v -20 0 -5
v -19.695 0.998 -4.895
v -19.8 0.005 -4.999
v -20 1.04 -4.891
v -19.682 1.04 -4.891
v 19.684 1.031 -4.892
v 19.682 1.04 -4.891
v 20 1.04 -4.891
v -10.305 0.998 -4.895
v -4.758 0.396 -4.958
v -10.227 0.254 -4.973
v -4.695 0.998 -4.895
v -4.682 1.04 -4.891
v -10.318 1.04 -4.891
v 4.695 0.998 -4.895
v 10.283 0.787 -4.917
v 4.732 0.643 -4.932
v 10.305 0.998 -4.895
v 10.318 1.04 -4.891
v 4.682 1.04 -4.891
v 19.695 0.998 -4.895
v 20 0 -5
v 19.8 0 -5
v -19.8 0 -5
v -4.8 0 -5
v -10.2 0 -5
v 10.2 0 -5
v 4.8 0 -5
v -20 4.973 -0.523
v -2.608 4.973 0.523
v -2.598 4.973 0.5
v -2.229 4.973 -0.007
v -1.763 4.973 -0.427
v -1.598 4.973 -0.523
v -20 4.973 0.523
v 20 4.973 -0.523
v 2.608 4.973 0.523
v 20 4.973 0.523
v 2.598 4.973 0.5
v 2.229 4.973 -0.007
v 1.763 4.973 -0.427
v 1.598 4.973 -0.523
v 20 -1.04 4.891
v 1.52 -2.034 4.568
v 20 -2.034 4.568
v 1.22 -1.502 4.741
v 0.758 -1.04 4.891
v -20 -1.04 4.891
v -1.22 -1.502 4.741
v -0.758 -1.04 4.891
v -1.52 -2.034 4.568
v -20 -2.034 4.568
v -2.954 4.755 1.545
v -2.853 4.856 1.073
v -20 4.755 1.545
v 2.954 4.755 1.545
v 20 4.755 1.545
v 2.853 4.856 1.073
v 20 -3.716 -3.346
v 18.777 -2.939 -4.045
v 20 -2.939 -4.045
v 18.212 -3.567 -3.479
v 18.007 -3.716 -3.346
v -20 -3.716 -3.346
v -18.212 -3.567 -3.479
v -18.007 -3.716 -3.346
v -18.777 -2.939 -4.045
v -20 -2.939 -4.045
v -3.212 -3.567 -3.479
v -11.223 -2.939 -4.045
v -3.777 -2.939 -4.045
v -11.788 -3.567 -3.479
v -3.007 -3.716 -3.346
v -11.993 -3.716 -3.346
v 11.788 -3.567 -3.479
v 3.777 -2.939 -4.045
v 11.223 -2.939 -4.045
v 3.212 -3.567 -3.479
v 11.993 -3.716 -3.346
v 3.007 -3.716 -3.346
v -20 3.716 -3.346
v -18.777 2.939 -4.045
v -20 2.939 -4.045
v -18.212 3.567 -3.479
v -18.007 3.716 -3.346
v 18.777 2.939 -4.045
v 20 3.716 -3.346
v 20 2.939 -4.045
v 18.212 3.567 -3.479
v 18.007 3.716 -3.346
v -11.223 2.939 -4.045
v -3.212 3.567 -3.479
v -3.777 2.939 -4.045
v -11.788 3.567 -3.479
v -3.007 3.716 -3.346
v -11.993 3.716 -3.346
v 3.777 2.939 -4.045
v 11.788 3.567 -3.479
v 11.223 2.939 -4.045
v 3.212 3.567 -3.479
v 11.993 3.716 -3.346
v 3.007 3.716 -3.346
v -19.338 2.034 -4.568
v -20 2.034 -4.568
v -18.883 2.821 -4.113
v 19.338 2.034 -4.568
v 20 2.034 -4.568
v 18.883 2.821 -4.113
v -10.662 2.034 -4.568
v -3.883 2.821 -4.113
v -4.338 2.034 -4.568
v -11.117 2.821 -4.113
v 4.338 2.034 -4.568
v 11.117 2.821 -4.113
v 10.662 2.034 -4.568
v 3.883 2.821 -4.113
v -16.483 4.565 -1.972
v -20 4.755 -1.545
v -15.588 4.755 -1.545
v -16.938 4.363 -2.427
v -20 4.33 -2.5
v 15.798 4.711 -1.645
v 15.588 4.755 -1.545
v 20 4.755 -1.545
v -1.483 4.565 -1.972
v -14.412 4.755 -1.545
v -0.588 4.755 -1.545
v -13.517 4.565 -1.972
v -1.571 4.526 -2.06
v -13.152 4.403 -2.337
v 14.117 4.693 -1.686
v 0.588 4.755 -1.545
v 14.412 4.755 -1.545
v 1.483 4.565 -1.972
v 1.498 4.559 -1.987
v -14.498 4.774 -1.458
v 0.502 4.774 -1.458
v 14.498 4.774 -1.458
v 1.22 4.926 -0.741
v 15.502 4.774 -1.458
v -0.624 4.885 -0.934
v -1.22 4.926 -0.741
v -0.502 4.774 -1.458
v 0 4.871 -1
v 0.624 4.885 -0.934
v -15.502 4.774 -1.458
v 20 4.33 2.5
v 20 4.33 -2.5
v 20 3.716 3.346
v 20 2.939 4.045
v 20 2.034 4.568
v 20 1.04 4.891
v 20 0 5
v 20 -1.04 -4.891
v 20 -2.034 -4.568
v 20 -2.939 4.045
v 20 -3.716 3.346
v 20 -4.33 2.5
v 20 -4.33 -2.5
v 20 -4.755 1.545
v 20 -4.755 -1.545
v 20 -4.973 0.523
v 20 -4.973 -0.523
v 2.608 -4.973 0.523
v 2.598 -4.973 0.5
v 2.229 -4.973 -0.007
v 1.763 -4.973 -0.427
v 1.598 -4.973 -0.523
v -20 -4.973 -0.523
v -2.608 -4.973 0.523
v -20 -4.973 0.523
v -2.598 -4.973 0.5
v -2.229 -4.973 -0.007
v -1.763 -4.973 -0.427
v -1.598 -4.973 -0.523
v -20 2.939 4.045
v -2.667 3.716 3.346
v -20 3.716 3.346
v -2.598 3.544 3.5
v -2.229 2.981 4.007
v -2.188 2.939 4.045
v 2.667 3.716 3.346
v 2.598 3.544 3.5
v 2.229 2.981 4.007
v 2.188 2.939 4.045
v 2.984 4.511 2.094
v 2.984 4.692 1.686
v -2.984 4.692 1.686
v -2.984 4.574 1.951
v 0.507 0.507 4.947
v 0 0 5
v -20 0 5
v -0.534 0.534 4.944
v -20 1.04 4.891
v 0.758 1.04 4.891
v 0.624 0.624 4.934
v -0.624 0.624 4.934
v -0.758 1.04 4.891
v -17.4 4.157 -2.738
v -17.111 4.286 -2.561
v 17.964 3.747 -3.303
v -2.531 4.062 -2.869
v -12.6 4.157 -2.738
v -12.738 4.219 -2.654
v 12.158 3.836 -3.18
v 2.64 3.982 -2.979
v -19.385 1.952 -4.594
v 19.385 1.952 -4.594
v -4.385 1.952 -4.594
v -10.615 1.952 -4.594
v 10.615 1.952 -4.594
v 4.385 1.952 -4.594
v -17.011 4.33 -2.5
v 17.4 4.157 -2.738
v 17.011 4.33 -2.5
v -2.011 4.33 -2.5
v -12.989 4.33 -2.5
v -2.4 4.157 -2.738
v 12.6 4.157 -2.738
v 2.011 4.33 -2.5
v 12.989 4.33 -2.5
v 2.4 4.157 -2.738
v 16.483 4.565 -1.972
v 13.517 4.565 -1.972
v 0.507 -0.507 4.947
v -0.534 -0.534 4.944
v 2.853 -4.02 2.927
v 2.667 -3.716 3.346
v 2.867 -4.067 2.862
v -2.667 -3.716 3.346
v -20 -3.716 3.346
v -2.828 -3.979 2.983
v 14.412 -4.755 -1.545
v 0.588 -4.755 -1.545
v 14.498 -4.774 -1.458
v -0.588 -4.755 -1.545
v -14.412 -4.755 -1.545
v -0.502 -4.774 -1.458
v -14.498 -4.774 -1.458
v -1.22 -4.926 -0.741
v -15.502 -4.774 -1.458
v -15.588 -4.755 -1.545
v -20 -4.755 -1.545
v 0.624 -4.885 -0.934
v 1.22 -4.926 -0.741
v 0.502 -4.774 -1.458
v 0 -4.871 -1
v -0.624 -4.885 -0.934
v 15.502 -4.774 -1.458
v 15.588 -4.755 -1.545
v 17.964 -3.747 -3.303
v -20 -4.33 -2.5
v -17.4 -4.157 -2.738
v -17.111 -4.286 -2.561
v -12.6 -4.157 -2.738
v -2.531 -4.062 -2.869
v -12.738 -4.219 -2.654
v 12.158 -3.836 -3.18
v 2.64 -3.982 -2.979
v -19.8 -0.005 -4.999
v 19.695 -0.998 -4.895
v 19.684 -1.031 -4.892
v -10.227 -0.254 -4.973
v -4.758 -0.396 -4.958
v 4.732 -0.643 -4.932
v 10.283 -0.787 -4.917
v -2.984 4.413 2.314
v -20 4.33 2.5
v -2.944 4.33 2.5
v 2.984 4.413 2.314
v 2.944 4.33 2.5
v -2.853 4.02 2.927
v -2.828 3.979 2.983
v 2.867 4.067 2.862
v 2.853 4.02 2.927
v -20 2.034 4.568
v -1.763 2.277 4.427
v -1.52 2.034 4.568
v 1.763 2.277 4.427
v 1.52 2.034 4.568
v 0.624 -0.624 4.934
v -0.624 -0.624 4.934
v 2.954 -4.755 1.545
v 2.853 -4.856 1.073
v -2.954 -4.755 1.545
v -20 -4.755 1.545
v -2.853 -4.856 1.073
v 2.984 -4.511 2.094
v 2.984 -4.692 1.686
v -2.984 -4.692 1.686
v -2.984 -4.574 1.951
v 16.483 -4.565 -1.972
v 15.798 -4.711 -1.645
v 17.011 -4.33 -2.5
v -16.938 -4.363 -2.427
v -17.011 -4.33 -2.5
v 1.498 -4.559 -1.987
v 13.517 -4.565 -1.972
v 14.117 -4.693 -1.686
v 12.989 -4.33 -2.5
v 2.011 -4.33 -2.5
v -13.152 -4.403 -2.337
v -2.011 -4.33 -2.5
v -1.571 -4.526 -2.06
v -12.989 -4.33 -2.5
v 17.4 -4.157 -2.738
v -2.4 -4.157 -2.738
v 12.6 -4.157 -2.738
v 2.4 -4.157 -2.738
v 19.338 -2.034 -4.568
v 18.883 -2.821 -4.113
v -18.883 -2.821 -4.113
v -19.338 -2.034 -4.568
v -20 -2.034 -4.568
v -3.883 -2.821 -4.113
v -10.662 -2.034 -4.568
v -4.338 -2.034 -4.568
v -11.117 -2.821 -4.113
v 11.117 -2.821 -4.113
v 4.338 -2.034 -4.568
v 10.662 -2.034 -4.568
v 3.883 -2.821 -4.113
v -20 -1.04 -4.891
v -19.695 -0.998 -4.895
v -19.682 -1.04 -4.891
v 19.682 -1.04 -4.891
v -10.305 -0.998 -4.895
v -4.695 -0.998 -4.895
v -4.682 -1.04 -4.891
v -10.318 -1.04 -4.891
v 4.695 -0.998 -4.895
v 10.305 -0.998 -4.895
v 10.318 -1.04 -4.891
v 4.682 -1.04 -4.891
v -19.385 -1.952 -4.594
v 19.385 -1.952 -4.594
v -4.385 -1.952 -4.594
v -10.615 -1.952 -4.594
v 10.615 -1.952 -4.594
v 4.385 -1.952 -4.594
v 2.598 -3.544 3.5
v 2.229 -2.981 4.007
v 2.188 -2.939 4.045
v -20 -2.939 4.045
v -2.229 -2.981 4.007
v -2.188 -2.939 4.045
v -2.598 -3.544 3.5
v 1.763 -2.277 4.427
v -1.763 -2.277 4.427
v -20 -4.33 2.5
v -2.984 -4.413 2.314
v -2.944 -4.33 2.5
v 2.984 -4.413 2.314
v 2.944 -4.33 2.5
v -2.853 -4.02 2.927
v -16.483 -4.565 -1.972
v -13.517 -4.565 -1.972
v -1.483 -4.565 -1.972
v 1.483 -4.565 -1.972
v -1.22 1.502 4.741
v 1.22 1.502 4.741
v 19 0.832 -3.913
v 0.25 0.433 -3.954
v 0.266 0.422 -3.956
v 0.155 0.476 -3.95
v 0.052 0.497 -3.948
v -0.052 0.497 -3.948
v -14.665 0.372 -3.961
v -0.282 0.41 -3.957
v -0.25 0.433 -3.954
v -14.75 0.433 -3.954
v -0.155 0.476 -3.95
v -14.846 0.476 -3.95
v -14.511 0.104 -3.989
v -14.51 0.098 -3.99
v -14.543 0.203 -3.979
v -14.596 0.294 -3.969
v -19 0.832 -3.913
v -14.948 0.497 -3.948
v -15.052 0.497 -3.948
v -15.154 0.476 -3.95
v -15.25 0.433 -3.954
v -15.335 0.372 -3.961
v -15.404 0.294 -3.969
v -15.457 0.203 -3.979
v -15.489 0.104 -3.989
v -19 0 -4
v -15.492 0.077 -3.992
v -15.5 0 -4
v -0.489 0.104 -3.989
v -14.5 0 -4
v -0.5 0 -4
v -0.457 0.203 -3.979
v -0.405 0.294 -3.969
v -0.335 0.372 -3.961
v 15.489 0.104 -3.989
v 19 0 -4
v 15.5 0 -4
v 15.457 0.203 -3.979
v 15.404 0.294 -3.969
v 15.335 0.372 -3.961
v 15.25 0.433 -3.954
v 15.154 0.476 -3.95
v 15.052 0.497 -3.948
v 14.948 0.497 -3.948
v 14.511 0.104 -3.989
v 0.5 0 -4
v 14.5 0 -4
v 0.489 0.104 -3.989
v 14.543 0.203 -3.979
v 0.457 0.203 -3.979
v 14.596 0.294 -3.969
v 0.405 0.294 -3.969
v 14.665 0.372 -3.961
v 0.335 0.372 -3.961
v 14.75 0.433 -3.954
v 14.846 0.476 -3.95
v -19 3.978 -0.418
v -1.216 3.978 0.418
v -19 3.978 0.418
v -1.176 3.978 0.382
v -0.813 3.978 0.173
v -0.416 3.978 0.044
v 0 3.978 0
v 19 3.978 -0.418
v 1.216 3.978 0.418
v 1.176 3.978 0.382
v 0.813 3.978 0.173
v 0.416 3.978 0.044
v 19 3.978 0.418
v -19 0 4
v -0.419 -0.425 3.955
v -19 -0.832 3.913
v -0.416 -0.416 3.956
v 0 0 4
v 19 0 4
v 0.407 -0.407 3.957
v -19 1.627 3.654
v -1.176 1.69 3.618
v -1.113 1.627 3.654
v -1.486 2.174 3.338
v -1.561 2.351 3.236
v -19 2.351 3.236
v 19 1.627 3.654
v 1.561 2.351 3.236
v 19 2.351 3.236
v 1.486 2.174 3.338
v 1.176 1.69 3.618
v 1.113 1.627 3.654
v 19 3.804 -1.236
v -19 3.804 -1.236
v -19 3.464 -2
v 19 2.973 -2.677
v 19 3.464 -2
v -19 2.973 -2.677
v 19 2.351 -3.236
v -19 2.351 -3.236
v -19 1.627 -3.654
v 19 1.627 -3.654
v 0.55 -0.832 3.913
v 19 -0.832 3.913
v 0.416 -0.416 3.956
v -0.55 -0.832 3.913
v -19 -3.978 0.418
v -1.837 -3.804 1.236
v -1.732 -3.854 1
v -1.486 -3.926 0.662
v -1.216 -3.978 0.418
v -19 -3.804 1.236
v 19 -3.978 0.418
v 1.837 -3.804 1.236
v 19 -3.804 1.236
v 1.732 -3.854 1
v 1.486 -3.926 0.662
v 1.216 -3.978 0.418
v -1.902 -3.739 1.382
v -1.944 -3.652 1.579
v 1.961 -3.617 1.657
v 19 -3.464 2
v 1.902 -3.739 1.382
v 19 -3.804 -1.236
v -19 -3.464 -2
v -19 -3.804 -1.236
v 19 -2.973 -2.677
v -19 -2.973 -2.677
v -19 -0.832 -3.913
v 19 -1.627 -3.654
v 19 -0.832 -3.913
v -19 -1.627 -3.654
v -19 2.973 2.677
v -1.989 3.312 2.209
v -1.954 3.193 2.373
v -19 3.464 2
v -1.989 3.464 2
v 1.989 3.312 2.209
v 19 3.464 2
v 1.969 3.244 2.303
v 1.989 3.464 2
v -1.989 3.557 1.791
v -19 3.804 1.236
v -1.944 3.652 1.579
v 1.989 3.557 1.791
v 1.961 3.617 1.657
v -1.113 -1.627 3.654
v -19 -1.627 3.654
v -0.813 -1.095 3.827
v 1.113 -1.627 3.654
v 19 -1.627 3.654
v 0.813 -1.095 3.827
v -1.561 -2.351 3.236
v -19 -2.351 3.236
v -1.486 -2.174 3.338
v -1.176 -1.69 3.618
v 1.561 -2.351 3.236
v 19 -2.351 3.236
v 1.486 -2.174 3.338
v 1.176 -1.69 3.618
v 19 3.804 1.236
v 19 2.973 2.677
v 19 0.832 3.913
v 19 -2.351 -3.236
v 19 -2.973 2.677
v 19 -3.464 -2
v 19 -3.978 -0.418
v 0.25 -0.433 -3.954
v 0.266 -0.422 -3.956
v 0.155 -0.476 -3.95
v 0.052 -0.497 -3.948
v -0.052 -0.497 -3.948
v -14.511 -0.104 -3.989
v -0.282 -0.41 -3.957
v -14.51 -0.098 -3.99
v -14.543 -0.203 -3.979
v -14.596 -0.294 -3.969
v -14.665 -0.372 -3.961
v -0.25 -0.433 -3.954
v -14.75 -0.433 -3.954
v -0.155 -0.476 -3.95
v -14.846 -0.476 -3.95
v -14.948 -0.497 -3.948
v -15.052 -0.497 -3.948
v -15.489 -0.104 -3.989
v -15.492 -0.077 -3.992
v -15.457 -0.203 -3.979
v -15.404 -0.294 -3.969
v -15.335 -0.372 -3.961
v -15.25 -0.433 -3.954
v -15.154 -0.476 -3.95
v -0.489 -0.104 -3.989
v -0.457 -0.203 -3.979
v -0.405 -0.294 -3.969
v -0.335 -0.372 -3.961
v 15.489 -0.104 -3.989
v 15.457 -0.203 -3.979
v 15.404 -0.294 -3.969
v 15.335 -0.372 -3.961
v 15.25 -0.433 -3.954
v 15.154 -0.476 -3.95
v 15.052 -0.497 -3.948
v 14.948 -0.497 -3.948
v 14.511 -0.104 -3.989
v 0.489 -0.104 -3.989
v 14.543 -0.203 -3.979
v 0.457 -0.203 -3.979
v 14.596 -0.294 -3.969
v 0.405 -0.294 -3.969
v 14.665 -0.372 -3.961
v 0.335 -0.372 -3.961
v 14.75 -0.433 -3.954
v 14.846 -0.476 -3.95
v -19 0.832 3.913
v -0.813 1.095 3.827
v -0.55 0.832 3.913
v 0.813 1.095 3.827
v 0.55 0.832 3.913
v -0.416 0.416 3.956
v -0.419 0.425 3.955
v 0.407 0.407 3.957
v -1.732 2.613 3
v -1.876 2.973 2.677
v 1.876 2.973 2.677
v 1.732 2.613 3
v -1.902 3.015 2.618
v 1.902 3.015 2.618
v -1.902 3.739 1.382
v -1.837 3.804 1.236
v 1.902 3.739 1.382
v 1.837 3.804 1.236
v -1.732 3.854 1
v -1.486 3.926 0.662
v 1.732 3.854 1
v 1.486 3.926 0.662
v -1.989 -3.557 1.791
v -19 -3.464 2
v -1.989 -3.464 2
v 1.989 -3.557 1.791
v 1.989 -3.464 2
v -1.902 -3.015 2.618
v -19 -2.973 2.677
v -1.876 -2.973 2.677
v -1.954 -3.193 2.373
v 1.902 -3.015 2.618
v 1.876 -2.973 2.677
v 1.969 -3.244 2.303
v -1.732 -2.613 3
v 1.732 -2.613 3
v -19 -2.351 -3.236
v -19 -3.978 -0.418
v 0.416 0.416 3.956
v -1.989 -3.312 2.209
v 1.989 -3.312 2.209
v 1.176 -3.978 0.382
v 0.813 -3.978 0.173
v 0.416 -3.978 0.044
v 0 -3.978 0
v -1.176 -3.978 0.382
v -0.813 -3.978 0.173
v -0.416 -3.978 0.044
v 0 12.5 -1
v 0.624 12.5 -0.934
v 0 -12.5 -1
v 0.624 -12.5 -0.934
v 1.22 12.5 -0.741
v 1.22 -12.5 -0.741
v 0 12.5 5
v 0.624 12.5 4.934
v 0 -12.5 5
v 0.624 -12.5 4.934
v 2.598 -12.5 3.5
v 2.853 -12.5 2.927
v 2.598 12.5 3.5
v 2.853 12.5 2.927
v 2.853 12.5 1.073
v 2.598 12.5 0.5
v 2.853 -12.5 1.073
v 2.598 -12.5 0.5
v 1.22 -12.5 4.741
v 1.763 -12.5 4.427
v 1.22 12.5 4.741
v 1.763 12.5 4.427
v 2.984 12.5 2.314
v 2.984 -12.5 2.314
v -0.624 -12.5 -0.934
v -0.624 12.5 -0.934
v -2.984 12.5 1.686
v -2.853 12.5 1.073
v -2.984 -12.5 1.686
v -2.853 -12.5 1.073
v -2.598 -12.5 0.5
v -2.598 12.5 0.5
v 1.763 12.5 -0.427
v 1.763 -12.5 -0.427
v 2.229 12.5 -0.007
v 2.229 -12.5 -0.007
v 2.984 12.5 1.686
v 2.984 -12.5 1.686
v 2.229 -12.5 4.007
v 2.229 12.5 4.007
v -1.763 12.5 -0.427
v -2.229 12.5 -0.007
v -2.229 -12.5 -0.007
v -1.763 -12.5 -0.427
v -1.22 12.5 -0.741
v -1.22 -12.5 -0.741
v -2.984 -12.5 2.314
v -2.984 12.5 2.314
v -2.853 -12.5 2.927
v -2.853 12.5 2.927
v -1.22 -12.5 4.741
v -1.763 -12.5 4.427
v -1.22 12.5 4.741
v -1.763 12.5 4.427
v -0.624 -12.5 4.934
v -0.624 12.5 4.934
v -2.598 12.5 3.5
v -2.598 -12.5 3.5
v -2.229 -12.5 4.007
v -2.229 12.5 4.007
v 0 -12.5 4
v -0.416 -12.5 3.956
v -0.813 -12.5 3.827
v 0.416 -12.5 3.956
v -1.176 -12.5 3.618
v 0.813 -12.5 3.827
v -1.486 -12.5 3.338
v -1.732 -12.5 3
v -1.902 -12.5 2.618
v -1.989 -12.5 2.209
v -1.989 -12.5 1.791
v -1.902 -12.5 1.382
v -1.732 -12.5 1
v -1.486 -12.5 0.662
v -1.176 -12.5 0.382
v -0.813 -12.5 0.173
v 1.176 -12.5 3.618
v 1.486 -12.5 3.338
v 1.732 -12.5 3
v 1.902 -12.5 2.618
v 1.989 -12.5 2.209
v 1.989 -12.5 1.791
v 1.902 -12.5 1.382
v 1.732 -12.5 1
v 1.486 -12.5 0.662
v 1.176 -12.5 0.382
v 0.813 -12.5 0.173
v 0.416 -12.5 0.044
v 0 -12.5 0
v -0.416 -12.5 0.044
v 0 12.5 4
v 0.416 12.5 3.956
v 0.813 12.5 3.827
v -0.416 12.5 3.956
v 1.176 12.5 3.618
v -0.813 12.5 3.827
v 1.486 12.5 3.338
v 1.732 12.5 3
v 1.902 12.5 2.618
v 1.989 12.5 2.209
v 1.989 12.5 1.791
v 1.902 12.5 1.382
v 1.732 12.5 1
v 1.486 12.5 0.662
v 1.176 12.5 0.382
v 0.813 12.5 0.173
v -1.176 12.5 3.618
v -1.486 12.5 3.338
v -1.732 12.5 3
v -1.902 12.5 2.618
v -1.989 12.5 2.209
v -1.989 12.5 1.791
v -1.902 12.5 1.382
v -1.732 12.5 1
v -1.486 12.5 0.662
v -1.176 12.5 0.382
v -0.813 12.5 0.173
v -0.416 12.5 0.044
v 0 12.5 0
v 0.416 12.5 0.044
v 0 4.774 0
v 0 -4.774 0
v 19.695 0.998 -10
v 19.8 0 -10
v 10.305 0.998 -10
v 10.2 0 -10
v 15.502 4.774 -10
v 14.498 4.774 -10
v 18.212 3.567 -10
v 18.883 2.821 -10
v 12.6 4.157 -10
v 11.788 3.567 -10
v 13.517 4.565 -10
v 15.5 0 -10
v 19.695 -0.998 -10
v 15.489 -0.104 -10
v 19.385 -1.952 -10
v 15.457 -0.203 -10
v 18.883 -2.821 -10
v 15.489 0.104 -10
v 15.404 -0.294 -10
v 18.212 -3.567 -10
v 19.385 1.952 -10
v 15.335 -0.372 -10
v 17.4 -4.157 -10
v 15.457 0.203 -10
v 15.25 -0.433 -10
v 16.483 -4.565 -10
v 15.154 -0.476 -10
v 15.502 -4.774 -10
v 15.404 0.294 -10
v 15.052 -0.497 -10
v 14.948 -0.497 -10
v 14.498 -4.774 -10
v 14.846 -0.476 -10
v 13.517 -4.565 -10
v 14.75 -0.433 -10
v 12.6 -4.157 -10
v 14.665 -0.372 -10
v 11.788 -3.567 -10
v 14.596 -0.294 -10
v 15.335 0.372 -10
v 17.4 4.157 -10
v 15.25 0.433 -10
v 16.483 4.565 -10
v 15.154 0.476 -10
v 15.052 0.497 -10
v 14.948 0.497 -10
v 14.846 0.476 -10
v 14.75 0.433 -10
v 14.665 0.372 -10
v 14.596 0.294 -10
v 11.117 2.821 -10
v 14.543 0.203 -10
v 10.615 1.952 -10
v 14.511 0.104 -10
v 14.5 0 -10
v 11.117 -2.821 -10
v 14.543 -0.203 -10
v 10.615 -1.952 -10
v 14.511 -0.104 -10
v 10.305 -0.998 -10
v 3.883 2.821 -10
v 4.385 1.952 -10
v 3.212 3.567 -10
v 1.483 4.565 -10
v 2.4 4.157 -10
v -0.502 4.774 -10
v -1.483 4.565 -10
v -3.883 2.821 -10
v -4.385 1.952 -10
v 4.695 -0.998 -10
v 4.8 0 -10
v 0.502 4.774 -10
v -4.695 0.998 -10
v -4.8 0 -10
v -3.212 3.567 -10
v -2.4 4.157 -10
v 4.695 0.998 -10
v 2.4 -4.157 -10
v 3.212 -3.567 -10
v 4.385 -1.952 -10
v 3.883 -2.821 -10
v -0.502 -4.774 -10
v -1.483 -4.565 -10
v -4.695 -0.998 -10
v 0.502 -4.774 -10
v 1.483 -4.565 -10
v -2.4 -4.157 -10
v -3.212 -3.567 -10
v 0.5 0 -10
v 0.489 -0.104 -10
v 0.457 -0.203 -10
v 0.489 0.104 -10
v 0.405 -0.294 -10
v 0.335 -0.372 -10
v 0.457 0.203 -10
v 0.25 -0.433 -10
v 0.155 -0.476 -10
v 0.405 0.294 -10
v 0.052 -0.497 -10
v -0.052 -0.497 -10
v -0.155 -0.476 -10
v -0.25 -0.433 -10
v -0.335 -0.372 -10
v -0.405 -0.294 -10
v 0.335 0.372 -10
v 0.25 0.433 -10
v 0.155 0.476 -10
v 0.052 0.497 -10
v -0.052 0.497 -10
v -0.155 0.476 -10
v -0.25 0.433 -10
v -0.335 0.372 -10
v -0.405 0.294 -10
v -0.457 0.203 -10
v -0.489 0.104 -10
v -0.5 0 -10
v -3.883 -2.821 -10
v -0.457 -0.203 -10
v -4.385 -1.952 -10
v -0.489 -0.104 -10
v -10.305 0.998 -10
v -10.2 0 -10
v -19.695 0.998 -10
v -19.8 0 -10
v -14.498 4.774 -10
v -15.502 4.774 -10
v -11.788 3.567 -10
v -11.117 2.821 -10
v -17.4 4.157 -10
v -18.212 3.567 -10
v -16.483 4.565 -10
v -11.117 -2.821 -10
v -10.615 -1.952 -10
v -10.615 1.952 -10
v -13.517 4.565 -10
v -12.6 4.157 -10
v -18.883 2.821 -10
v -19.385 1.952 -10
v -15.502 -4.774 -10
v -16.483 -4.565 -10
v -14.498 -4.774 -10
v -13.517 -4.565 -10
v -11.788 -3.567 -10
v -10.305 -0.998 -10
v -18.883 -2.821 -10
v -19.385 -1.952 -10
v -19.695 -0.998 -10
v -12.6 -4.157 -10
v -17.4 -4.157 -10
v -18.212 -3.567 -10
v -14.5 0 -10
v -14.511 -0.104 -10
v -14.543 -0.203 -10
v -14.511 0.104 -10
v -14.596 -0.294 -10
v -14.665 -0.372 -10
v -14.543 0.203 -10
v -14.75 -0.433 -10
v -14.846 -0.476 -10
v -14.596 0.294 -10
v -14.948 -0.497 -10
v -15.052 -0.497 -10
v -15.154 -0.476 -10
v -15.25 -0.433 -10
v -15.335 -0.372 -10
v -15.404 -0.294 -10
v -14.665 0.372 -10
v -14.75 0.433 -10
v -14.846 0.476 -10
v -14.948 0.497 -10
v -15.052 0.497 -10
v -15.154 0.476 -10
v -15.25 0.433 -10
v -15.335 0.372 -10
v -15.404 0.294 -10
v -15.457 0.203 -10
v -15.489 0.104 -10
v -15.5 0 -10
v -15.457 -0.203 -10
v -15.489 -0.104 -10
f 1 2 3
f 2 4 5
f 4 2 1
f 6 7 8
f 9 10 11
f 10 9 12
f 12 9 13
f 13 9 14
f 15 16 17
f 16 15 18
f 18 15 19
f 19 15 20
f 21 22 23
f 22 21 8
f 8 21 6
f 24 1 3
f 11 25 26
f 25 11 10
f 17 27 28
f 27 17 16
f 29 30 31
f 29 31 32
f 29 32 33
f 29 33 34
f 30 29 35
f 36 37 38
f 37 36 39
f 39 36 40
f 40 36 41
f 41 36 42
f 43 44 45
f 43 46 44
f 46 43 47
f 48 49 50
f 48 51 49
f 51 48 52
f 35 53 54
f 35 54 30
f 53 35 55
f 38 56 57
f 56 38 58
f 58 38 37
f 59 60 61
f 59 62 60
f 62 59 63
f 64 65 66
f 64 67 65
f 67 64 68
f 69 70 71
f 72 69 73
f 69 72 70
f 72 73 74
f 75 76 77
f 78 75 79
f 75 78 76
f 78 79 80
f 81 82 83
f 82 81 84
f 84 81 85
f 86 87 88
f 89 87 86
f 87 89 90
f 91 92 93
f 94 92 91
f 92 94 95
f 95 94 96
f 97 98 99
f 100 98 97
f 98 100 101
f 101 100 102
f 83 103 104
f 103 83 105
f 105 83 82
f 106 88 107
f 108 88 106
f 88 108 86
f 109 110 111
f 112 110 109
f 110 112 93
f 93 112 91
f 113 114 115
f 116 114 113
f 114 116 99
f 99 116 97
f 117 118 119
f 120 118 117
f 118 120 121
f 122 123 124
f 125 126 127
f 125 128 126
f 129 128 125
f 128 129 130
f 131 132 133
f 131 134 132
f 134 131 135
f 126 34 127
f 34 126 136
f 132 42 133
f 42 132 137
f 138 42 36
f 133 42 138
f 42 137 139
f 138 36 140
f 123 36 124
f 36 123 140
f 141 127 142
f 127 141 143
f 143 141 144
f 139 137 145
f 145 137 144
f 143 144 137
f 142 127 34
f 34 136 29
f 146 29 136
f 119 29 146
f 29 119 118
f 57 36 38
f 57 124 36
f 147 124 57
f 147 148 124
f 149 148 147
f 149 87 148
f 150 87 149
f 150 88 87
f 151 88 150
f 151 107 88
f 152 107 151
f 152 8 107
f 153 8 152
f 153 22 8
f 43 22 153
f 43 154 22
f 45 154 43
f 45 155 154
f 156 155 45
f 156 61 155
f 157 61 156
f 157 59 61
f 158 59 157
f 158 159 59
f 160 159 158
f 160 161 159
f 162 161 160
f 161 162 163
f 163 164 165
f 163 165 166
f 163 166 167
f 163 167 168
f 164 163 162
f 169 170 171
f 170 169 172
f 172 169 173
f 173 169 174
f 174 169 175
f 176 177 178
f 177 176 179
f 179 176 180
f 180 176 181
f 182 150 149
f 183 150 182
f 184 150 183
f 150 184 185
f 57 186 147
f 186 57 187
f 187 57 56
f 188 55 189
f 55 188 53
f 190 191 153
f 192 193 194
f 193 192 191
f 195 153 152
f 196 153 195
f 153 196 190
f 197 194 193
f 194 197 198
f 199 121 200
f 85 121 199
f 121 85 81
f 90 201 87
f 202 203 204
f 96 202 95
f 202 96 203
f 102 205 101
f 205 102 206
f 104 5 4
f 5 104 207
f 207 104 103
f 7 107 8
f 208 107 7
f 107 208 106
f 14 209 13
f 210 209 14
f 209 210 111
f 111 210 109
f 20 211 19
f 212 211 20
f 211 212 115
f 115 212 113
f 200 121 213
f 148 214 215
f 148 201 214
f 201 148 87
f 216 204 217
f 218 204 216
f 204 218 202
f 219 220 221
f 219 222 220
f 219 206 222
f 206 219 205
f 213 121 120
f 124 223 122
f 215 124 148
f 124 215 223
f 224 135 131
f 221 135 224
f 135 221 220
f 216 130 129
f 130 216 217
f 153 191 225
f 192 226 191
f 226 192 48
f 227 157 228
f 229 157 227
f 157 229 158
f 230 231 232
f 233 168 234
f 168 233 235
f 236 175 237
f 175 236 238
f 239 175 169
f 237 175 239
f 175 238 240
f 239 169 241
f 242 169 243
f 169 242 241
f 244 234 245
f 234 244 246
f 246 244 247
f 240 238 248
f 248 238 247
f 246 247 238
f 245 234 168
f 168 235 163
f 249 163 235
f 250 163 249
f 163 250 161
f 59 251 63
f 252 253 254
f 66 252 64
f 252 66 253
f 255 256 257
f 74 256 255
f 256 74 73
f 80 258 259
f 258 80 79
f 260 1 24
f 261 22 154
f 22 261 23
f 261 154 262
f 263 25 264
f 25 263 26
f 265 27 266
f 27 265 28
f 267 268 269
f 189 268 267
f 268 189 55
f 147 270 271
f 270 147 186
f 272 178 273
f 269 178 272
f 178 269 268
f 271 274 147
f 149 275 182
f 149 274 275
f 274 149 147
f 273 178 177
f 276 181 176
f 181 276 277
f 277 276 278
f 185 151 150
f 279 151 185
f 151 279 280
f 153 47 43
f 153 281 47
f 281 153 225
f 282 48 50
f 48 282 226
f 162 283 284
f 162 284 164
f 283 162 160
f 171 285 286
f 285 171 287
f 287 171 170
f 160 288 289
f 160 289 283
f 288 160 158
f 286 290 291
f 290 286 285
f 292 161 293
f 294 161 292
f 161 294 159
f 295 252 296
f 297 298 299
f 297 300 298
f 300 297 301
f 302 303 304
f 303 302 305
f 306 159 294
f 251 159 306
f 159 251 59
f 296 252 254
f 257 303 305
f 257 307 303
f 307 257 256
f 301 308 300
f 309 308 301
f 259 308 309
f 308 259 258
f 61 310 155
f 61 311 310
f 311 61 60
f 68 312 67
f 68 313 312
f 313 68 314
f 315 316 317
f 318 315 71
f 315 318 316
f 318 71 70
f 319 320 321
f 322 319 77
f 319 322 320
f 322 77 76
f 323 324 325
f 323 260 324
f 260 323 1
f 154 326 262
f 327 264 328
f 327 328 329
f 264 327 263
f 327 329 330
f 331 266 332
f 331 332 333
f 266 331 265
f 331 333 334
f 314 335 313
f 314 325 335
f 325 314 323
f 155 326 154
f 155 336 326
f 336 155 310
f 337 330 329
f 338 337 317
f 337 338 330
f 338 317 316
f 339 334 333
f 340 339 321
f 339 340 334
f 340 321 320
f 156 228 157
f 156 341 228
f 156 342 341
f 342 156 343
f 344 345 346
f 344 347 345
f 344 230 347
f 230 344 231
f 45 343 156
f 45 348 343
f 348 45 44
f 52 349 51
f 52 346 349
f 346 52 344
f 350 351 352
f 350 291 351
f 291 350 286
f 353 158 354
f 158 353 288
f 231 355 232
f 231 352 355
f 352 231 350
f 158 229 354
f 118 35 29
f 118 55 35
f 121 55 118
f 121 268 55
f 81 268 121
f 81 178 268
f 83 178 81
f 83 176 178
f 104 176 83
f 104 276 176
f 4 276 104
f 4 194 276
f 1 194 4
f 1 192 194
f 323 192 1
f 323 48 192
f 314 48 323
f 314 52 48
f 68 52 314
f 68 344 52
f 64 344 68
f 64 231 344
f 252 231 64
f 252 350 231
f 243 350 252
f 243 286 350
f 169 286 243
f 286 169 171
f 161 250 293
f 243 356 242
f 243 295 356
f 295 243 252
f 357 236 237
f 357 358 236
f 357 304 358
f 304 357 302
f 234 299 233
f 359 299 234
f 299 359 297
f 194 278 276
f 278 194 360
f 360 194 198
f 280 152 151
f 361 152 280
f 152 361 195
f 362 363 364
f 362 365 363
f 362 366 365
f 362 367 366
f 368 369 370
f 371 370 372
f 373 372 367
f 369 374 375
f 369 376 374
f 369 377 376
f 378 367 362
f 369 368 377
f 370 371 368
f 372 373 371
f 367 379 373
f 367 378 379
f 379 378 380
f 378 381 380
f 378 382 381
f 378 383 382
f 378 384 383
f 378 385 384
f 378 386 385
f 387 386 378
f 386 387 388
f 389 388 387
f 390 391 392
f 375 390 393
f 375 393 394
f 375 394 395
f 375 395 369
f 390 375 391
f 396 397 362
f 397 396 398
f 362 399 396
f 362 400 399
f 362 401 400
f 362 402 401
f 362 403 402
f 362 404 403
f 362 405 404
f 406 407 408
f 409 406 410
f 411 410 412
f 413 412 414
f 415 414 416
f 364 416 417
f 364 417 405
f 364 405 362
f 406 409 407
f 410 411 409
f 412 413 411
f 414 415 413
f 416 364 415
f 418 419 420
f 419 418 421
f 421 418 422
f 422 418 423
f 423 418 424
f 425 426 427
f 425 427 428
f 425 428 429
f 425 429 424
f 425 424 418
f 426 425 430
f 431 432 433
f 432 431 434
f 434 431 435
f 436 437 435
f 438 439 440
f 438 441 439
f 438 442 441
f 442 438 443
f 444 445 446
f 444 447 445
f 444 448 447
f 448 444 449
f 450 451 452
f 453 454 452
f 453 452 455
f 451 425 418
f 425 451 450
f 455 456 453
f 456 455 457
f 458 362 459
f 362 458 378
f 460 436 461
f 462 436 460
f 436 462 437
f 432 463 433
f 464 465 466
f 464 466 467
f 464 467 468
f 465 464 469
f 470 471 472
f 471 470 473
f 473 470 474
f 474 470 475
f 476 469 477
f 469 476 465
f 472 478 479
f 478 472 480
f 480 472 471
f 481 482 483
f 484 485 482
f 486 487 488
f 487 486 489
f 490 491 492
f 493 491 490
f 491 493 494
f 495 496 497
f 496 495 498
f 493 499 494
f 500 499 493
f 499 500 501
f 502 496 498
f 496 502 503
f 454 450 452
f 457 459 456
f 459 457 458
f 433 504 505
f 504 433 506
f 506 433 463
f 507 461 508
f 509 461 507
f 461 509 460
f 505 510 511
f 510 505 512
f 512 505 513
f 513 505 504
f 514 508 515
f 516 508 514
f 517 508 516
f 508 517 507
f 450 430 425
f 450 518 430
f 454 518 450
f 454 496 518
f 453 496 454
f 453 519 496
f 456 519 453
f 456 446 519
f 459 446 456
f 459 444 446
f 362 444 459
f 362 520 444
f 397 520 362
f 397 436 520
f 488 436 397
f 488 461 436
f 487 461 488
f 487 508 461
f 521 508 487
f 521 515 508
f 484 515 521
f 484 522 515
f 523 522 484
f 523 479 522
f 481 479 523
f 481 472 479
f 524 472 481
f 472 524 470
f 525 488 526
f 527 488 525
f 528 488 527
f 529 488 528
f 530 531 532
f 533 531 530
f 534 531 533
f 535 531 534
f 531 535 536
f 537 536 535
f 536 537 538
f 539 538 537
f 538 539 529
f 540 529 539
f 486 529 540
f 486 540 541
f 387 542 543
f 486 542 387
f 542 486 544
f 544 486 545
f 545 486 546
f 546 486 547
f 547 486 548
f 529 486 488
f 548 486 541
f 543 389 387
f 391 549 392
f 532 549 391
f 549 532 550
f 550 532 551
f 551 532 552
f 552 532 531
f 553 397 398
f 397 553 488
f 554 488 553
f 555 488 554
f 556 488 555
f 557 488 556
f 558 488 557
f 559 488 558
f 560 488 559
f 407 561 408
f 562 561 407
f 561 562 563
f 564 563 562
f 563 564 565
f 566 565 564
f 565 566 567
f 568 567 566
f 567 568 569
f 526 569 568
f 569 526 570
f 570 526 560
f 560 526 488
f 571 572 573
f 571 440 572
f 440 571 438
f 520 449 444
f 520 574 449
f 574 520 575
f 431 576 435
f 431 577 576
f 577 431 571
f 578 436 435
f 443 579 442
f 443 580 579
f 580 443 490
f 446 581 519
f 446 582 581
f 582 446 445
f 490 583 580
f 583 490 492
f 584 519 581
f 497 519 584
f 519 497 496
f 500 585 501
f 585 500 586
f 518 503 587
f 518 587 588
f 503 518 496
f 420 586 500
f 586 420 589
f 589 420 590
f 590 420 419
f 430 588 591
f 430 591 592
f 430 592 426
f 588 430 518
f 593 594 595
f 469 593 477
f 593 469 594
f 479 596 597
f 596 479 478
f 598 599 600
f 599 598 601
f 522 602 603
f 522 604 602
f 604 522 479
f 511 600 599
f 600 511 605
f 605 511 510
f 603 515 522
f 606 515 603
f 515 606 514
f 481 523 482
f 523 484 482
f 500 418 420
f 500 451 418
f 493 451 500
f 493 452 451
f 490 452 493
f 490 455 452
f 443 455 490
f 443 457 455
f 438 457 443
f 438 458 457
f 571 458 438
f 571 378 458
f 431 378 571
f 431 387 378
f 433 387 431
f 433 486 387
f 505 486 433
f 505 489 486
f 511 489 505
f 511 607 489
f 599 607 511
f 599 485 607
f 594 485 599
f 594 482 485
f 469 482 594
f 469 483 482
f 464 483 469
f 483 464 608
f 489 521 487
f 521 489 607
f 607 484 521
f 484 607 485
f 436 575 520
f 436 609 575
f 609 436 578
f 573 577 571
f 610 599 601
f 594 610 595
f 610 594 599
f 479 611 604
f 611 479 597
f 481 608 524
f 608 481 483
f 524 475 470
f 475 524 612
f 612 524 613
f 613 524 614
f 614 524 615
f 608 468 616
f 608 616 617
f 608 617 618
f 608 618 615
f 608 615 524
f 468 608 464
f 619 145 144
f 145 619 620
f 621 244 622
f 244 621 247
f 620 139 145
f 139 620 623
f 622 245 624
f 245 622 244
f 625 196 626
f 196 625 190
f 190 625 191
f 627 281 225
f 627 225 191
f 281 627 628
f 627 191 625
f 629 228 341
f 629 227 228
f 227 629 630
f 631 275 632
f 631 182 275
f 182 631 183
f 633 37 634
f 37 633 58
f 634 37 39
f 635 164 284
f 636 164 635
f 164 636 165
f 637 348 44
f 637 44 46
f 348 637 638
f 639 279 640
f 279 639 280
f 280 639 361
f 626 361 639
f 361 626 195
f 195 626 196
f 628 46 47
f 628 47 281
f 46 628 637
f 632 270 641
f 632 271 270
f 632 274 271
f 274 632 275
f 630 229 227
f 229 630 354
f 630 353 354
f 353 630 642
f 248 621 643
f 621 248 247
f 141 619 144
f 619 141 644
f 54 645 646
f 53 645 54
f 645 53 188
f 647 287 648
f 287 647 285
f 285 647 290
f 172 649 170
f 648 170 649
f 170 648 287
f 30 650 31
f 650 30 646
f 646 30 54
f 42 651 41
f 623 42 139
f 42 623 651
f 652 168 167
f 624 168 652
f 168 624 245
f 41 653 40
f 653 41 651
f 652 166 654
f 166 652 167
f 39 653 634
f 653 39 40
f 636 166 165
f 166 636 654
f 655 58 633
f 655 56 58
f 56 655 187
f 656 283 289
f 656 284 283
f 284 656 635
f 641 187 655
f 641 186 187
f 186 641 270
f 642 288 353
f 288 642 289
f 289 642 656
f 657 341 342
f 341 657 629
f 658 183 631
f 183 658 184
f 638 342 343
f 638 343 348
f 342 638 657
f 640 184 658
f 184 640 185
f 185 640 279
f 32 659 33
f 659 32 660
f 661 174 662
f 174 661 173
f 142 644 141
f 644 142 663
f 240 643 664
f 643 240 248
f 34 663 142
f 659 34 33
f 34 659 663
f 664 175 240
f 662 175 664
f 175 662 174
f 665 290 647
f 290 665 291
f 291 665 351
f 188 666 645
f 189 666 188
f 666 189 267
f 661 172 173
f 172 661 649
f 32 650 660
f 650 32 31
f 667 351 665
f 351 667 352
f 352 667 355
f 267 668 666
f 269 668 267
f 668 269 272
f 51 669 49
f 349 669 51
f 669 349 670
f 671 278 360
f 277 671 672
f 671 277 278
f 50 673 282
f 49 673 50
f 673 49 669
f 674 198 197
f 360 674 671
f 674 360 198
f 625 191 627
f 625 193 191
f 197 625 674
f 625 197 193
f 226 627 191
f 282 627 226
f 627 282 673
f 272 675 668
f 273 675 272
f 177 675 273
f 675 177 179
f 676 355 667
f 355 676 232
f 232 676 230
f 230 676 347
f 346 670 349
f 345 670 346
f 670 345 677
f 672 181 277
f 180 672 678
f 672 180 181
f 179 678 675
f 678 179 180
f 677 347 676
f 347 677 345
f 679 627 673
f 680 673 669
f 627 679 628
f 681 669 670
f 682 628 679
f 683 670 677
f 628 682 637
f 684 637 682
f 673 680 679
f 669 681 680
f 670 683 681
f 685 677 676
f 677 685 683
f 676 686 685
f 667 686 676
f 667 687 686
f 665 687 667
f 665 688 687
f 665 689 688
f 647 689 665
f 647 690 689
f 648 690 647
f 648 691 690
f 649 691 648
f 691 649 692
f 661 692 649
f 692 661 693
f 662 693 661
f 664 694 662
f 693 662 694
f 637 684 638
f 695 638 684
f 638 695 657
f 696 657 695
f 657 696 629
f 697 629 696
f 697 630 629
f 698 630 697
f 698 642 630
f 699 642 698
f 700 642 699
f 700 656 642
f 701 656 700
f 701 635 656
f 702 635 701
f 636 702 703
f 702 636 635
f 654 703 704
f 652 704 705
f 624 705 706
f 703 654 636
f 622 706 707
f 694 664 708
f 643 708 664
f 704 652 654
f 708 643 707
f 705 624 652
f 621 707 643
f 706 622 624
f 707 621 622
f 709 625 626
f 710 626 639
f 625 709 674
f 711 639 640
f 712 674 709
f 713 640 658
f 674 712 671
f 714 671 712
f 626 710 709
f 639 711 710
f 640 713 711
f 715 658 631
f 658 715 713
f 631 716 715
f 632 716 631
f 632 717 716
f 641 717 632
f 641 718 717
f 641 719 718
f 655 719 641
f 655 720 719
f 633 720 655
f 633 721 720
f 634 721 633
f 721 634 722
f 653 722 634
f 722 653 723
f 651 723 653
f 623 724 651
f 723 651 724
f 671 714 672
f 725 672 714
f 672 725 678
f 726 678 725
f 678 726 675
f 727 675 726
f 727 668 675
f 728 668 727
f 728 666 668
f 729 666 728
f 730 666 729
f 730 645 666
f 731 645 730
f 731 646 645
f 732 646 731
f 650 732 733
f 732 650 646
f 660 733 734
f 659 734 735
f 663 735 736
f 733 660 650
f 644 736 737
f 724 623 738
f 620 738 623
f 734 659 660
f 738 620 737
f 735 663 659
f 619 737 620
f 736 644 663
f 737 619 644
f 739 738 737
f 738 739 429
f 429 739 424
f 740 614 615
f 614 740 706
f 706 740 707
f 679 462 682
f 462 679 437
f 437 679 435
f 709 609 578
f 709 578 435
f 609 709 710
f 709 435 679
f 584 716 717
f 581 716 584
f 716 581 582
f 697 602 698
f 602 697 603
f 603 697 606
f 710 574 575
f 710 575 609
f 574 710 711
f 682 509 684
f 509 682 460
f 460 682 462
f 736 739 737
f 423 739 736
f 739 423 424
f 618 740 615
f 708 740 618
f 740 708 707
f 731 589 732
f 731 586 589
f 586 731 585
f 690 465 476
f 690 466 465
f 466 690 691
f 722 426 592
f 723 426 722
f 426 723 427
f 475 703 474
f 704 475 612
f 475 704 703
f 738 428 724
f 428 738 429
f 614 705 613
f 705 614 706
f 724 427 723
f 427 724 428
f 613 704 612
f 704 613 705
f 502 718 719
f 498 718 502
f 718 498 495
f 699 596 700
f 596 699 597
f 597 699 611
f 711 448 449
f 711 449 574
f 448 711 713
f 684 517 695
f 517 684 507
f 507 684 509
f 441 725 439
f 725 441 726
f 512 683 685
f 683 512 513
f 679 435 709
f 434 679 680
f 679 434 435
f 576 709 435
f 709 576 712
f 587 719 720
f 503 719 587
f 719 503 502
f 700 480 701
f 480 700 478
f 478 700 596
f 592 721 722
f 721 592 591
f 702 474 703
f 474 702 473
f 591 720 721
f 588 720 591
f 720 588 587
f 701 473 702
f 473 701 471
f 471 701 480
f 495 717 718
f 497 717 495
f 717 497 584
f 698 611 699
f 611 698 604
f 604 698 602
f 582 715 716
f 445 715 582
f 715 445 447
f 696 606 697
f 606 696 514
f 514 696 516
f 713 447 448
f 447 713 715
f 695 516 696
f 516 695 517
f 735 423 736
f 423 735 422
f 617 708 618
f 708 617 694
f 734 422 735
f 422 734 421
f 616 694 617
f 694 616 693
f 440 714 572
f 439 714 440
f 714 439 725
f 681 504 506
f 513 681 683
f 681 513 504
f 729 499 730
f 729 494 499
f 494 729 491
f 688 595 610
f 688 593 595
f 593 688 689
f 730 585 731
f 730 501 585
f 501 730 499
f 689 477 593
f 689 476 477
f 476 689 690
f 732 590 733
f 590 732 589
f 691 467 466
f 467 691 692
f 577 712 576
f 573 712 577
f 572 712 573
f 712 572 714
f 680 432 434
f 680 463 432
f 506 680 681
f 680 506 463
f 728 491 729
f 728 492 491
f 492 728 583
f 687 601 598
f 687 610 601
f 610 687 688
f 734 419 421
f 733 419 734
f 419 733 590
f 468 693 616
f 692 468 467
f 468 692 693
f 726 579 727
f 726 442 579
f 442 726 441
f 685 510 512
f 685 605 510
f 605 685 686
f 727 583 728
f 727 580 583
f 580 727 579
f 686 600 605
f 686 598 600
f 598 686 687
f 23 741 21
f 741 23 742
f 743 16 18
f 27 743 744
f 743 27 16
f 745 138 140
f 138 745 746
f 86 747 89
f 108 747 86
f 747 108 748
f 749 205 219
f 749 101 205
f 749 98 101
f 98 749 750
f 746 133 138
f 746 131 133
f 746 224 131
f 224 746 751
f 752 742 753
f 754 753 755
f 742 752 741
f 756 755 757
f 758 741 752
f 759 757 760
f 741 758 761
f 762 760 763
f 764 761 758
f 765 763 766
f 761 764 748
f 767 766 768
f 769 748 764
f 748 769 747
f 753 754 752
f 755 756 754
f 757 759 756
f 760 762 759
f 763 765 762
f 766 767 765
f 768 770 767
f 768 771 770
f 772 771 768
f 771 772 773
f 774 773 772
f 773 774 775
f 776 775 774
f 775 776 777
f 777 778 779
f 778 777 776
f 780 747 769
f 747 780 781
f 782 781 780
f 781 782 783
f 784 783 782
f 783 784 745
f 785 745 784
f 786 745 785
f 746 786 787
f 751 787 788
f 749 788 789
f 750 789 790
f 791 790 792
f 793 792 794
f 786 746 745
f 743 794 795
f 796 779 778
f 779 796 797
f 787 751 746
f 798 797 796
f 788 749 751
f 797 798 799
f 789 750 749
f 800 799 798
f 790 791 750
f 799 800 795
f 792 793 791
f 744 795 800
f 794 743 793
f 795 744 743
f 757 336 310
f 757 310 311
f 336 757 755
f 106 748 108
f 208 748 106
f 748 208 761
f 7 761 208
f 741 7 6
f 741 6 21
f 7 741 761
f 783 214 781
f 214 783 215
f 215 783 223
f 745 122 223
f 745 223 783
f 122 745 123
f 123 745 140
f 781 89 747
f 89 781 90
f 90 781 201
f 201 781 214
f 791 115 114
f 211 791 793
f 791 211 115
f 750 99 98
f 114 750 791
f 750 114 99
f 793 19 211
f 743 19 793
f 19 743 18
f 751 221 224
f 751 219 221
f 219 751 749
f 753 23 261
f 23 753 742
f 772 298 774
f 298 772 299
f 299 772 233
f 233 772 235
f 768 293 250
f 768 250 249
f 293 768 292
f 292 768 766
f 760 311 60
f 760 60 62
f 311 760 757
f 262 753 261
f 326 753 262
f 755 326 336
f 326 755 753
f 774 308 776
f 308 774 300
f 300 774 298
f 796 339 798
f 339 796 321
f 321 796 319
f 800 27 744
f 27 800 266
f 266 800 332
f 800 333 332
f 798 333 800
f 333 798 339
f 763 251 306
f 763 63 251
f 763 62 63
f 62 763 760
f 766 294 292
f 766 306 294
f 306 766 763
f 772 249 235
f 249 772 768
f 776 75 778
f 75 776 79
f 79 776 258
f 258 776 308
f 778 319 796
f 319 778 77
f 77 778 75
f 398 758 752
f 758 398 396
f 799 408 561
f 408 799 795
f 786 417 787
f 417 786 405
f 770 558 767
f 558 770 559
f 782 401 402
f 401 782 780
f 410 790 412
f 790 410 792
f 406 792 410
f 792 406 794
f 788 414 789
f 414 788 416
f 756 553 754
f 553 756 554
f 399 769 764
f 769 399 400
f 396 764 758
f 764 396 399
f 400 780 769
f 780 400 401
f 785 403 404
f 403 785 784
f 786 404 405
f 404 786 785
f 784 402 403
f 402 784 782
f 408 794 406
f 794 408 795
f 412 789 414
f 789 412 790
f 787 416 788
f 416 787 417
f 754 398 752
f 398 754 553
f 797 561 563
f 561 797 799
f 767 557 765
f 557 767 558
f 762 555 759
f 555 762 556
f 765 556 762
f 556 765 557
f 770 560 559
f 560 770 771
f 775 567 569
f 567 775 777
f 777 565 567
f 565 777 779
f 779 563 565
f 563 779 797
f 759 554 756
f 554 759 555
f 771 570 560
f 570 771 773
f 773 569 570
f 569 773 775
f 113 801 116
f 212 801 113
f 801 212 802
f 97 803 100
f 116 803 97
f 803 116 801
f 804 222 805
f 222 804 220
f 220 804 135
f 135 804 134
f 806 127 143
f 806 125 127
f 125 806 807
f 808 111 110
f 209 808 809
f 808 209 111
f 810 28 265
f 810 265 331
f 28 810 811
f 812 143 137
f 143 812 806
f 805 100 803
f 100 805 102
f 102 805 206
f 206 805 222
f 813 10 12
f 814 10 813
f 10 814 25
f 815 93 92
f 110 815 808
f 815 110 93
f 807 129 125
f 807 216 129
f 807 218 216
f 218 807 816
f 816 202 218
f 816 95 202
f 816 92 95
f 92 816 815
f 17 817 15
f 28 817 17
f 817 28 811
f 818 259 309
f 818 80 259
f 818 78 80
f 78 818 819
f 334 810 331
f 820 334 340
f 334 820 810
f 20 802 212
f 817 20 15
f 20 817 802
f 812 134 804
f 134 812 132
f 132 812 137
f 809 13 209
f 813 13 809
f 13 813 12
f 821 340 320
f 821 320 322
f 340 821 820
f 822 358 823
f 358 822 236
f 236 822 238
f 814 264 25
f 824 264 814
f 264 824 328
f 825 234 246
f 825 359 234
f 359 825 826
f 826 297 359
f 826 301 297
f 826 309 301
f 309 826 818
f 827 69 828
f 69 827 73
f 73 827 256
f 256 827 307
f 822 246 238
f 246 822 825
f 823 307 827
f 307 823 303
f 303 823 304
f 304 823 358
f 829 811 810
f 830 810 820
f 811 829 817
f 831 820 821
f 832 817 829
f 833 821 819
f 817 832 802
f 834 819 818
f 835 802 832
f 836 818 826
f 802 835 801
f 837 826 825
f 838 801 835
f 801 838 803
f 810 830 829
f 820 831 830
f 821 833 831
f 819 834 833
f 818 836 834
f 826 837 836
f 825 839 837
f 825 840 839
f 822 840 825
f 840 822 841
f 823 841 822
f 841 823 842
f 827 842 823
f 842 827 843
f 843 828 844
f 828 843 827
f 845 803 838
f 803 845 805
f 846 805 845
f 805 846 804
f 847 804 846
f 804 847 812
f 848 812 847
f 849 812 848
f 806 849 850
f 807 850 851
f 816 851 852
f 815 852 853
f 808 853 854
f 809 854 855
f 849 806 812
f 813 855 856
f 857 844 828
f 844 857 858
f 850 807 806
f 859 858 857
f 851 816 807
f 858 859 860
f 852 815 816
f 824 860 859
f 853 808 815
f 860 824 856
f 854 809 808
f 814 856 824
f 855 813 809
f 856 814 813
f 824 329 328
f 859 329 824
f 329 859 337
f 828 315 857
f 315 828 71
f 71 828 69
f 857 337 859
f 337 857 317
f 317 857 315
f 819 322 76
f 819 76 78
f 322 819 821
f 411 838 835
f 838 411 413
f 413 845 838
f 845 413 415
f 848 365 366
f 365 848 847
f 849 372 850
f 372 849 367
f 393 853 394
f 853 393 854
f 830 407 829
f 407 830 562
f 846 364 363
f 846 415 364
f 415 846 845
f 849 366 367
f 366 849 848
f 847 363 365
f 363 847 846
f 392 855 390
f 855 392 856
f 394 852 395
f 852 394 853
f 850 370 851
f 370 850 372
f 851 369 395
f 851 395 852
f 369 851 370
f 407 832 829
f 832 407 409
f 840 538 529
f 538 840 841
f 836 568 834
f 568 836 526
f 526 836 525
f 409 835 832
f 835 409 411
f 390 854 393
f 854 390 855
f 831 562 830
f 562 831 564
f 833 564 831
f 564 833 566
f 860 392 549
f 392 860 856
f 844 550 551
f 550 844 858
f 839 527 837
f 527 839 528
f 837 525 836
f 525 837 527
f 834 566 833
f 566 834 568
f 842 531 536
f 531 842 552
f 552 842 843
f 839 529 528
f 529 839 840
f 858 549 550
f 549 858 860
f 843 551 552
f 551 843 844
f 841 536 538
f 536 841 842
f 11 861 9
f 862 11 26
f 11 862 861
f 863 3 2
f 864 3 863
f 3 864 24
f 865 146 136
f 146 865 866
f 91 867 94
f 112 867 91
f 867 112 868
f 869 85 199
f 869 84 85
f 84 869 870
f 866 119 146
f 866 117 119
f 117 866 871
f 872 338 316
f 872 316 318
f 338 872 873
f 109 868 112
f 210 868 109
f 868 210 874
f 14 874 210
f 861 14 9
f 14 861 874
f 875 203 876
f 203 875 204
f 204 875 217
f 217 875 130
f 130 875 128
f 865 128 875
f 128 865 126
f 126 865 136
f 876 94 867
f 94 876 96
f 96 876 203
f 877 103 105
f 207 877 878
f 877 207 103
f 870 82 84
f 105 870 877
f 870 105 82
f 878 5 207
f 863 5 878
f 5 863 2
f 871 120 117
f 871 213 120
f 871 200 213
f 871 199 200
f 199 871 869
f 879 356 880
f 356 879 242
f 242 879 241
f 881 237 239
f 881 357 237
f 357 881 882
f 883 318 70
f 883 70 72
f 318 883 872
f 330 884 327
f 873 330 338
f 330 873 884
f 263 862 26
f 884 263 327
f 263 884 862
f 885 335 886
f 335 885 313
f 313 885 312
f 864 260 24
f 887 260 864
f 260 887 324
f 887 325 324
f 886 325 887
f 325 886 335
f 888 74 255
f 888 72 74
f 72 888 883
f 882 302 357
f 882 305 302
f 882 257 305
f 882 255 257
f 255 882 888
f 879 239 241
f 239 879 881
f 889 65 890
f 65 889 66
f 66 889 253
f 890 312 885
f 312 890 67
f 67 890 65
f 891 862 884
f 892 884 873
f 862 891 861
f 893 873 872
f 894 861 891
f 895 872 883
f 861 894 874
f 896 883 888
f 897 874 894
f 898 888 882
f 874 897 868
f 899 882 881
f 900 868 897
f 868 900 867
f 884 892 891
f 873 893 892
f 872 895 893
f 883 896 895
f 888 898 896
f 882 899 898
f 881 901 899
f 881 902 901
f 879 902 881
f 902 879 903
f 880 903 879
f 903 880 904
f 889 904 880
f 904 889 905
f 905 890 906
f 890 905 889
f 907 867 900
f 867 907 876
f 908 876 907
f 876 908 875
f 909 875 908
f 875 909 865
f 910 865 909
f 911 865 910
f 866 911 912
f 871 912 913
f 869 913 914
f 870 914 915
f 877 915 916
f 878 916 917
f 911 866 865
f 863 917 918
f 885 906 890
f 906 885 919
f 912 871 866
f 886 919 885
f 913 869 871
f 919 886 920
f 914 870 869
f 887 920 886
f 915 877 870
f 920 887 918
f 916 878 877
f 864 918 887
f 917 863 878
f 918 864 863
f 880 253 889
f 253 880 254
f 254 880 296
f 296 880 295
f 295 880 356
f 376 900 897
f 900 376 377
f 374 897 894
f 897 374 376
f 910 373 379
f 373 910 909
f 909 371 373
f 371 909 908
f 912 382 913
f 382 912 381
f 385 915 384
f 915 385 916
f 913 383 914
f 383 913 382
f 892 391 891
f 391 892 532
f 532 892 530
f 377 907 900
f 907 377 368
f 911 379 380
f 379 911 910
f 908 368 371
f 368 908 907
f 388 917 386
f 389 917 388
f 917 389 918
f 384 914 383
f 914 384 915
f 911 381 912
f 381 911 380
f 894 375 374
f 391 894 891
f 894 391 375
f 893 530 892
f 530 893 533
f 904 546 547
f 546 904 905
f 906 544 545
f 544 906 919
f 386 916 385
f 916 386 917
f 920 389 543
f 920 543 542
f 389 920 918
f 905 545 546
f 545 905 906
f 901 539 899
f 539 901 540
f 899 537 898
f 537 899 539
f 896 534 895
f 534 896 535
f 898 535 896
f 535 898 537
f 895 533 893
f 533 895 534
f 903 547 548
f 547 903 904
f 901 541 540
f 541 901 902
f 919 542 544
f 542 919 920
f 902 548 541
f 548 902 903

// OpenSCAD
union(){
  difference(){
    translate(v = [0, 0, 0]){
      rotate(a = [0, 90, 0]){
        cylinder($fn = 30, center = true, h = 40, r = 5);
      }
    }
    translate(v = [0, 0, 0]){
      rotate(a = [0, 90, 0]){
        cylinder($fn = 30, center = true, h = 38, r = 4);
      }
    }
    translate(v = [0, 0, 2]){
      rotate(a = [90, 90, 0]){
        cylinder($fn = 30, center = true, h = 30, r = 3);
      }
    }
    translate(v = [0, 0, -5]){
      rotate(a = [0, 0, 0]){
        cylinder($fn = 30, center = true, h = 10, r = 4);
      }
    }
    translate(v = [15, 0, -5]){
      rotate(a = [0, 0, 0]){
        cylinder($fn = 30, center = true, h = 10, r = 4);
      }
    }
    translate(v = [-15, 0, -5]){
      rotate(a = [0, 0, 0]){
        cylinder($fn = 30, center = true, h = 10, r = 4);
      }
    }
  }
  difference(){
    translate(v = [0, 0, 2]){
      rotate(a = [90, 90, 0]){
        cylinder($fn = 30, center = true, h = 25, r = 3);
      }
    }
    translate(v = [0, 0, 2]){
      rotate(a = [90, 90, 0]){
        cylinder($fn = 30, center = true, h = 26, r = 2);
      }
    }
    translate(v = [0, 0, 0]){
      rotate(a = [0, 90, 0]){
        cylinder($fn = 30, center = true, h = 38, r = 4);
      }
    }
  }
  difference(){
    translate(v = [15, 0, -5]){
      rotate(a = [0, 0, 0]){
        cylinder($fn = 30, center = true, h = 10, r = 4.8);
      }
    }
    translate(v = [15, 0, -8]){
      rotate(a = [0, 0, 0]){
        cylinder($fn = 30, center = true, h = 11, r = 0.5);
      }
    }
    translate(v = [0, 0, 0]){
      rotate(a = [0, 90, 0]){
        cylinder($fn = 30, center = true, h = 38, r = 4);
      }
    }
  }
  difference(){
    translate(v = [0, 0, -5]){
      rotate(a = [0, 0, 0]){
        cylinder($fn = 30, center = true, h = 10, r = 4.8);
      }
    }
    translate(v = [0, 0, -8]){
      rotate(a = [0, 0, 0]){
        cylinder($fn = 30, center = true, h = 11, r = 0.5);
      }
    }
    translate(v = [0, 0, 0]){
      rotate(a = [0, 90, 0]){
        cylinder($fn = 30, center = true, h = 38, r = 4);
      }
    }
  }
  difference(){
    translate(v = [-15, 0, -5]){
      rotate(a = [0, 0, 0]){
        cylinder($fn = 30, center = true, h = 10, r = 4.8);
      }
    }
    translate(v = [-15, 0, -8]){
      rotate(a = [0, 0, 0]){
        cylinder($fn = 30, center = true, h = 11, r = 0.5);
      }
    }
    translate(v = [0, 0, 0]){
      rotate(a = [0, 90, 0]){
        cylinder($fn = 30, center = true, h = 38, r = 4);
      }
    }
  }
}
